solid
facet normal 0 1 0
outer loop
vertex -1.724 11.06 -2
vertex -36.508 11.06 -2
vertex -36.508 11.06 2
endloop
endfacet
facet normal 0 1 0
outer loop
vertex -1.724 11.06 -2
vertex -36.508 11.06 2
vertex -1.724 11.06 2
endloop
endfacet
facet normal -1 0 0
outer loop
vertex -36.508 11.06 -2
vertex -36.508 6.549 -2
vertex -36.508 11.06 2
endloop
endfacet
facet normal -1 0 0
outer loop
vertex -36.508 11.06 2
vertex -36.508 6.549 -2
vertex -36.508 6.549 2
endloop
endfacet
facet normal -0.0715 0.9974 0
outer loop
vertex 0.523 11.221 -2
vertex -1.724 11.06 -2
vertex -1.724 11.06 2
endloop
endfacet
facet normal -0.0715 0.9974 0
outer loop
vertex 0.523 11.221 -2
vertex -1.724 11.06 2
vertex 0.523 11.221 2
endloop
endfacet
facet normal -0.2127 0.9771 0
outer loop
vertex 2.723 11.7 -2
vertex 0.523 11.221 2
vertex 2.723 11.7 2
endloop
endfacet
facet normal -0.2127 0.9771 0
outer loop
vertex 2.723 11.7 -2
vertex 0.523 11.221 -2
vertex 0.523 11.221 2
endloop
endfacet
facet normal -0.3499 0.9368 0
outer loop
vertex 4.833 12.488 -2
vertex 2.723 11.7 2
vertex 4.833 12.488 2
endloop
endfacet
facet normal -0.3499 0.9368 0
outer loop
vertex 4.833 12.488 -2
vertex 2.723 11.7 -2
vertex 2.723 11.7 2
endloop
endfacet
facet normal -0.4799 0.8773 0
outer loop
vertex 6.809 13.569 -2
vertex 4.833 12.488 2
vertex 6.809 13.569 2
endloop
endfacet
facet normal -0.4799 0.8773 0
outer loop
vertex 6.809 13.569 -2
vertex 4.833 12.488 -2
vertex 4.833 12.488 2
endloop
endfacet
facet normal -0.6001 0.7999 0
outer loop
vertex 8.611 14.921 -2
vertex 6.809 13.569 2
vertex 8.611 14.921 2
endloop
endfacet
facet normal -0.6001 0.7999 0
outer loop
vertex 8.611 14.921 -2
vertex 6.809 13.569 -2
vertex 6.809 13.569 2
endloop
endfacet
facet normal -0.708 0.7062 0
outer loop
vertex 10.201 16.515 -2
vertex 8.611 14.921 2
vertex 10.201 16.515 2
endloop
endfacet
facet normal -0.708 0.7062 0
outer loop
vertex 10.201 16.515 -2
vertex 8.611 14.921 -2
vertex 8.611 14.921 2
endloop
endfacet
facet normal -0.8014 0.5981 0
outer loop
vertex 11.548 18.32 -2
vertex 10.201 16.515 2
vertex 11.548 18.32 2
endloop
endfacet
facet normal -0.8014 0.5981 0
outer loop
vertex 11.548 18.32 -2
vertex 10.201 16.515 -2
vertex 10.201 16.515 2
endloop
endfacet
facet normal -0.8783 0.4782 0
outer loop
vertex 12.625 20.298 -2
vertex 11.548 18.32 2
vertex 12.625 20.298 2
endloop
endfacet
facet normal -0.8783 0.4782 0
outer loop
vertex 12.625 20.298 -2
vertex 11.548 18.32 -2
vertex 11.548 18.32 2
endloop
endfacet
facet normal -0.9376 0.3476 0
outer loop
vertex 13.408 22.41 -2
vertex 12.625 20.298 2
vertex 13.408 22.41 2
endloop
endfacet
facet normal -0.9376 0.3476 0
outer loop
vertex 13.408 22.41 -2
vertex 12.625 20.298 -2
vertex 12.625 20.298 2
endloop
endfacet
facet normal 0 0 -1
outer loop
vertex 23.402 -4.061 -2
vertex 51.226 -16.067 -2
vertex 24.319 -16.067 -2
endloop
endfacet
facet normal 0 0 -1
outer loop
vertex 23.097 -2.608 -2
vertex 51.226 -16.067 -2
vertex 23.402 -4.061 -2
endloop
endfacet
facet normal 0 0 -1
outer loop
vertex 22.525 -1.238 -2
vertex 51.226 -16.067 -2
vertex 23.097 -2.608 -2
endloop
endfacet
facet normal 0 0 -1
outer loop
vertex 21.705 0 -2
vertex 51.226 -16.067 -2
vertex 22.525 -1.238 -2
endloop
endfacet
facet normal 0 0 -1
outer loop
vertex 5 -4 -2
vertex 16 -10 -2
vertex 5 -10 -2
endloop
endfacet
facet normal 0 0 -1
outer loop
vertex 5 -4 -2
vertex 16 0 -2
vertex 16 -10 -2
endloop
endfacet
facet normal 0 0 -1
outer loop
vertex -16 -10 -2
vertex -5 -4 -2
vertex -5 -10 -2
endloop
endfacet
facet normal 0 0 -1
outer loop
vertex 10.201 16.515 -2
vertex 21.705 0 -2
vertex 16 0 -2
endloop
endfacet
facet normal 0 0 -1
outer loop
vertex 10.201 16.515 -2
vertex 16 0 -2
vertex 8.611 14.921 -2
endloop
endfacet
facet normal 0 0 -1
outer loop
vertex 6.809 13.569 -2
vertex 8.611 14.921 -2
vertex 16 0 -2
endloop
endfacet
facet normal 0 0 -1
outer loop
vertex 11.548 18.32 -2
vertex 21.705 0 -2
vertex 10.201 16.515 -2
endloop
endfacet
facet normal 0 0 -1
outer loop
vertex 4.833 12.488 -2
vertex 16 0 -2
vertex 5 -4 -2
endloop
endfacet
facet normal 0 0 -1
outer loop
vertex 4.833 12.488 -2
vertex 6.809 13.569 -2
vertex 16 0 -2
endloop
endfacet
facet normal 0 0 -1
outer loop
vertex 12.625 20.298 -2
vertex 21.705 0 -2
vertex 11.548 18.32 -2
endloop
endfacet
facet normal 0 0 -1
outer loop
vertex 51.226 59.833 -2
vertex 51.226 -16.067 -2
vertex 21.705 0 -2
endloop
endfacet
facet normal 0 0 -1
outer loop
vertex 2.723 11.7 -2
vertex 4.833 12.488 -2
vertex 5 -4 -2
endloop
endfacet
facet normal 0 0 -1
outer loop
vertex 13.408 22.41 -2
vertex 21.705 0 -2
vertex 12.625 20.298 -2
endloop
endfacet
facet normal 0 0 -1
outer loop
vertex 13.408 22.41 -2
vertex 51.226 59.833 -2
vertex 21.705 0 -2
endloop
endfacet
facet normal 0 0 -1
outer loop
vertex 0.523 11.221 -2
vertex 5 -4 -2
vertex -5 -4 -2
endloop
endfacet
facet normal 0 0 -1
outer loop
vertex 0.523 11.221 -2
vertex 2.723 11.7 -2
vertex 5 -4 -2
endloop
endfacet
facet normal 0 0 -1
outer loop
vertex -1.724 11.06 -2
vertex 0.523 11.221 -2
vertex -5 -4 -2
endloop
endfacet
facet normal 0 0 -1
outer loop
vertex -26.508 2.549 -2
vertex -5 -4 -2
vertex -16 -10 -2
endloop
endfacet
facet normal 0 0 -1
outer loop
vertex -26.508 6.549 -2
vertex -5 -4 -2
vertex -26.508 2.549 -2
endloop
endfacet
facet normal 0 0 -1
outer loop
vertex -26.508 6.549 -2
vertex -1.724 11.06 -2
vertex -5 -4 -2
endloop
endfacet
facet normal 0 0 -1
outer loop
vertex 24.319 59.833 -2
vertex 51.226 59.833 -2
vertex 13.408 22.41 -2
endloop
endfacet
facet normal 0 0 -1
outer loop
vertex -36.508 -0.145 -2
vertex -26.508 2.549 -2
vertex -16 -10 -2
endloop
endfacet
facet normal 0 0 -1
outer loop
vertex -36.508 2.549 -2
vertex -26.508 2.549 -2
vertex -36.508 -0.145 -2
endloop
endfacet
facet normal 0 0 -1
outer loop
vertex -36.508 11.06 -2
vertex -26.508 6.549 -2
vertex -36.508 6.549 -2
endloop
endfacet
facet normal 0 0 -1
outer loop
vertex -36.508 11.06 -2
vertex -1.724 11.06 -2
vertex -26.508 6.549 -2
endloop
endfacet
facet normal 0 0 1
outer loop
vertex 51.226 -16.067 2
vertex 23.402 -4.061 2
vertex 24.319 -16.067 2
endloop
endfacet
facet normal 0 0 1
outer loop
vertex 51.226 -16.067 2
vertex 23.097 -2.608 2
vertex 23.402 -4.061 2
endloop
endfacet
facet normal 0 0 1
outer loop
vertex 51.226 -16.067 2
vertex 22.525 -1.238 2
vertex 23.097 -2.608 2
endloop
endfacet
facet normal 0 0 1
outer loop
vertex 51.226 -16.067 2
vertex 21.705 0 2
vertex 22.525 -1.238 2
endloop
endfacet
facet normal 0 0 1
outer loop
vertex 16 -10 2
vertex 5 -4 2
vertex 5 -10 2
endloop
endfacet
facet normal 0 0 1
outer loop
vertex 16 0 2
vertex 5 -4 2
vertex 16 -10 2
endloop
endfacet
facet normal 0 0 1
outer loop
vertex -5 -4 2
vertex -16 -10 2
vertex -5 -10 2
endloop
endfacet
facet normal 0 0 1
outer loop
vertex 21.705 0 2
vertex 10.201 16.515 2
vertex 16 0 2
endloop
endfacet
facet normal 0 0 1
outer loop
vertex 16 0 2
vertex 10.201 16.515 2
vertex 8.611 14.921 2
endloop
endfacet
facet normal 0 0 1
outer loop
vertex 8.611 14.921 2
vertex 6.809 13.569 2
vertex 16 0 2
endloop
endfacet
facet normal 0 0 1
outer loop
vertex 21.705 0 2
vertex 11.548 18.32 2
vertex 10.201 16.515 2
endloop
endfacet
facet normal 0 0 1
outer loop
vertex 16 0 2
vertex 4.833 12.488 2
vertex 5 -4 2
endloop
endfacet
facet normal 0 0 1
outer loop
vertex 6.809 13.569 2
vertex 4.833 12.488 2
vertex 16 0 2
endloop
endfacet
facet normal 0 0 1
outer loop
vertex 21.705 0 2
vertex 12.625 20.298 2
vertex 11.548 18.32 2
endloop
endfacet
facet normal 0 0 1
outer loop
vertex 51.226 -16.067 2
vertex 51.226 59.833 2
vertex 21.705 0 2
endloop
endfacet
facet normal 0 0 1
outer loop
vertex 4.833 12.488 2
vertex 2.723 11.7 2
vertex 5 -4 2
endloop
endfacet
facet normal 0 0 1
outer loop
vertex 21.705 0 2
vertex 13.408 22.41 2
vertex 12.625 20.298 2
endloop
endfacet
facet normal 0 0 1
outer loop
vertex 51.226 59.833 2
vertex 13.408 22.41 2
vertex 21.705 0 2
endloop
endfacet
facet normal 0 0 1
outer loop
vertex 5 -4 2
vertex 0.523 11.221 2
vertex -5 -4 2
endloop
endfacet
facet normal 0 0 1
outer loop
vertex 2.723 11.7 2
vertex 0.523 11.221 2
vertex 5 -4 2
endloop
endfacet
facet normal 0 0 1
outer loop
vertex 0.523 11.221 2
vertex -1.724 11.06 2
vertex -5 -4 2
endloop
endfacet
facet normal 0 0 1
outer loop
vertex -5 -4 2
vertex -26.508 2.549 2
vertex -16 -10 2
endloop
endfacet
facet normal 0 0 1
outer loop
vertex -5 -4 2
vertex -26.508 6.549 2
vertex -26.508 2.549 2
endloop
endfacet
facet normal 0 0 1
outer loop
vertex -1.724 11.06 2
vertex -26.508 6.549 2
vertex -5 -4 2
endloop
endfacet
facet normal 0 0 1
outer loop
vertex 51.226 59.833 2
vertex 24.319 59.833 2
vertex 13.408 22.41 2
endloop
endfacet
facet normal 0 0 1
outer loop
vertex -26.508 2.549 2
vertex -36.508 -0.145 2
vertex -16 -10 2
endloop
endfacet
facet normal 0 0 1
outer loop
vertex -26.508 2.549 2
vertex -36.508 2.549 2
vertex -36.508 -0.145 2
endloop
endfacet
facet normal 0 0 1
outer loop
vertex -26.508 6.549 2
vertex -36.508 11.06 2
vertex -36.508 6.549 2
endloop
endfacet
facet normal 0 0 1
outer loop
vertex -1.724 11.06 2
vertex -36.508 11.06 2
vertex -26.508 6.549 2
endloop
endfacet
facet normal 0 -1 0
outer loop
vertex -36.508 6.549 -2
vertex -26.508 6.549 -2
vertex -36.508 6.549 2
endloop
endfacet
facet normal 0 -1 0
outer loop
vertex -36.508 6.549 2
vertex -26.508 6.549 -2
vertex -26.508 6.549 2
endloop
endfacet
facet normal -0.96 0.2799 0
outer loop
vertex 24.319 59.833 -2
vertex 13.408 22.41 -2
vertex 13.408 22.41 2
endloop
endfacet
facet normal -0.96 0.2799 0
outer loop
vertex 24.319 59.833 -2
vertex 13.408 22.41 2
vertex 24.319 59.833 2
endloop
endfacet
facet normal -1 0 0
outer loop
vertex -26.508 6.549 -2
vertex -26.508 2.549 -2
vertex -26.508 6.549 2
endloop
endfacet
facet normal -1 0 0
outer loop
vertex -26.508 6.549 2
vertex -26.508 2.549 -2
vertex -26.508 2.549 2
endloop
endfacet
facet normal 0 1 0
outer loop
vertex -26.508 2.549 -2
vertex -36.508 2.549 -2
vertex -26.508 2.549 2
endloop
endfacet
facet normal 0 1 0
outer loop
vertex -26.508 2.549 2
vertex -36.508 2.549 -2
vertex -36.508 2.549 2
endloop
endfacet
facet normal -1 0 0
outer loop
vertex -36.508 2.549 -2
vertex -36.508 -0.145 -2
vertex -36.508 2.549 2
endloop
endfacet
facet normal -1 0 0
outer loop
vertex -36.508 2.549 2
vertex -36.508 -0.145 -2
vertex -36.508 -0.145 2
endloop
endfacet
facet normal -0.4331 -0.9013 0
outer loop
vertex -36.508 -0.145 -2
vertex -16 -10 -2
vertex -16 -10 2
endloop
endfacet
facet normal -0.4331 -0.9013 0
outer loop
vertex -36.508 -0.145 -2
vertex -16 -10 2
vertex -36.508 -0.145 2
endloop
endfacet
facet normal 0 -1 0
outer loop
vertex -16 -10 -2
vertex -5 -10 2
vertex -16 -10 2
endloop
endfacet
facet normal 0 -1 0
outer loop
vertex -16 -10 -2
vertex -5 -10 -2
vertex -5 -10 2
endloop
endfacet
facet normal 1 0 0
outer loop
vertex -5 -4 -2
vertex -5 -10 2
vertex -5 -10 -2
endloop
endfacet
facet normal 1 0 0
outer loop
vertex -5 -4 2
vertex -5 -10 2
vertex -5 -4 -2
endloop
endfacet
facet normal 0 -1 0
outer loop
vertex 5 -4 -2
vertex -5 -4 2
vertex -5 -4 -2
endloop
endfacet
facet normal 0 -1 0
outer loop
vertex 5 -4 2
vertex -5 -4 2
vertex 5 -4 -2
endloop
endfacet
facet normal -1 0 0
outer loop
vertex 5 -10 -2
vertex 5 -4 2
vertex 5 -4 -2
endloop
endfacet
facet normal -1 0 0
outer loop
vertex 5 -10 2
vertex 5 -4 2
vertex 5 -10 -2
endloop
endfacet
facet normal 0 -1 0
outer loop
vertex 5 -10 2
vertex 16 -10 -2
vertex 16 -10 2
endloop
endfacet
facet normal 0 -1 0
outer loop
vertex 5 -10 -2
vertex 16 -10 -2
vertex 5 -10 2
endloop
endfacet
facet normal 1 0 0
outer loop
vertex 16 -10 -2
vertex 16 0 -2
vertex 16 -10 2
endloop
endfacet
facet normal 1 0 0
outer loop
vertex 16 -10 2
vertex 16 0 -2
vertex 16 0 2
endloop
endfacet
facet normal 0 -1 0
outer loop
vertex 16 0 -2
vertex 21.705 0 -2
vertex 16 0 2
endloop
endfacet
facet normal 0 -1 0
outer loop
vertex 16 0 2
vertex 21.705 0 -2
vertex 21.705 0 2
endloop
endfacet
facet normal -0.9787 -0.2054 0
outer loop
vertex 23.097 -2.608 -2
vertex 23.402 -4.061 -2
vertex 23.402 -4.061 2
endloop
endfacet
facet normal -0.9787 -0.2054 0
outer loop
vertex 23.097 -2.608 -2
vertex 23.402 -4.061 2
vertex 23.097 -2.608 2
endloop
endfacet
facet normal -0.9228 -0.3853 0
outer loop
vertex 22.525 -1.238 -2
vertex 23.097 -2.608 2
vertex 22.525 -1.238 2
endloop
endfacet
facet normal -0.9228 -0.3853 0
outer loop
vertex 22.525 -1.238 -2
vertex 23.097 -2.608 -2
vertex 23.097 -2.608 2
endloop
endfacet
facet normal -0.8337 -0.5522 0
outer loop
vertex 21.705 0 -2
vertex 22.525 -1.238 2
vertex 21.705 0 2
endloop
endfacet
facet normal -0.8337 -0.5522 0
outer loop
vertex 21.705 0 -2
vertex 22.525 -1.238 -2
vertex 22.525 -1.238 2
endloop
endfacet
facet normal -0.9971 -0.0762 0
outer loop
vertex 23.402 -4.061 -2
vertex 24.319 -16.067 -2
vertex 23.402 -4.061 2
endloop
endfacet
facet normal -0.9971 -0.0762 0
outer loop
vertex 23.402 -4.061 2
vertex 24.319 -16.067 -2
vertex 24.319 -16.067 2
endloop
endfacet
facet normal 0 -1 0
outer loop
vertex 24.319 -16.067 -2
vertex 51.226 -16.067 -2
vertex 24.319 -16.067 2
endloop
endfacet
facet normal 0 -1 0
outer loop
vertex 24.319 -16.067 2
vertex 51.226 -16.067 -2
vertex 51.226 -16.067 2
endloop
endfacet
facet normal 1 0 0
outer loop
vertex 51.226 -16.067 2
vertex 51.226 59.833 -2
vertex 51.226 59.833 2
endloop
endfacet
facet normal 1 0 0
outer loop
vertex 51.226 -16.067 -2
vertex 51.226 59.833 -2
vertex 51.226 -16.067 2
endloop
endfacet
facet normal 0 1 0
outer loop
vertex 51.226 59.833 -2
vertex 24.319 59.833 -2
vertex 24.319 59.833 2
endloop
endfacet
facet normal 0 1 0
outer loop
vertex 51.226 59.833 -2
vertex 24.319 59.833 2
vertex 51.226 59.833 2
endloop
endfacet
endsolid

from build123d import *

# Parameters (mm, degrees)
PAD_DEPTH    = 2
SKETCH_W     = 10
SKETCH_H     = 6
POCKET_DEPTH = 4.001


with BuildPart() as part:
    # CopySketch004 → Pad (new body, symmetric)
    with BuildSketch(Plane.XY):
        with BuildLine():
            Line((-36.508492, 11.060009), (-1.723702, 11.060009))
            ThreePointArc((-1.723702, 11.060009), (7.733856, 14.212769), (13.407871, 22.409771))
            Line((13.407871, 22.409771), (24.319128, 59.832547))
            Line((24.319128, 59.832547), (51.226102, 59.832547))
            Line((51.226102, 59.832547), (51.226102, -16.067453))
            Line((24.319128, -16.067453), (51.226102, -16.067453))
            Line((23.401691, -4.060687), (24.319128, -16.067453))
            ThreePointArc((23.401691, -4.060687), (22.843077, -1.909417), (21.705474, 0))
            Line((16, 0), (21.705474, 0))
            Line((16, -10), (16, 0))
            Line((-16, -10), (16, -10))
            Line((-16, -10), (-36.508492, -0.144815))
            Line((-36.508492, 2.549264), (-36.508492, -0.144815))
            Line((-26.508492, 2.549264), (-36.508492, 2.549264))
            Line((-26.508492, 6.549264), (-26.508492, 2.549264))
            Line((-36.508492, 6.549264), (-26.508492, 6.549264))
            Line((-36.508492, 11.060009), (-36.508492, 6.549264))
        make_face()
    extrude(amount=PAD_DEPTH, both=True)

    # Sketch (on Face19 of Pad) → Pocket (cut, through all)
    with BuildSketch(Plane.XY.offset(2)):
        with Locations((0, -7)):
            Rectangle(SKETCH_W, SKETCH_H)
    extrude(amount=-POCKET_DEPTH, mode=Mode.SUBTRACT)


solid = part.part
